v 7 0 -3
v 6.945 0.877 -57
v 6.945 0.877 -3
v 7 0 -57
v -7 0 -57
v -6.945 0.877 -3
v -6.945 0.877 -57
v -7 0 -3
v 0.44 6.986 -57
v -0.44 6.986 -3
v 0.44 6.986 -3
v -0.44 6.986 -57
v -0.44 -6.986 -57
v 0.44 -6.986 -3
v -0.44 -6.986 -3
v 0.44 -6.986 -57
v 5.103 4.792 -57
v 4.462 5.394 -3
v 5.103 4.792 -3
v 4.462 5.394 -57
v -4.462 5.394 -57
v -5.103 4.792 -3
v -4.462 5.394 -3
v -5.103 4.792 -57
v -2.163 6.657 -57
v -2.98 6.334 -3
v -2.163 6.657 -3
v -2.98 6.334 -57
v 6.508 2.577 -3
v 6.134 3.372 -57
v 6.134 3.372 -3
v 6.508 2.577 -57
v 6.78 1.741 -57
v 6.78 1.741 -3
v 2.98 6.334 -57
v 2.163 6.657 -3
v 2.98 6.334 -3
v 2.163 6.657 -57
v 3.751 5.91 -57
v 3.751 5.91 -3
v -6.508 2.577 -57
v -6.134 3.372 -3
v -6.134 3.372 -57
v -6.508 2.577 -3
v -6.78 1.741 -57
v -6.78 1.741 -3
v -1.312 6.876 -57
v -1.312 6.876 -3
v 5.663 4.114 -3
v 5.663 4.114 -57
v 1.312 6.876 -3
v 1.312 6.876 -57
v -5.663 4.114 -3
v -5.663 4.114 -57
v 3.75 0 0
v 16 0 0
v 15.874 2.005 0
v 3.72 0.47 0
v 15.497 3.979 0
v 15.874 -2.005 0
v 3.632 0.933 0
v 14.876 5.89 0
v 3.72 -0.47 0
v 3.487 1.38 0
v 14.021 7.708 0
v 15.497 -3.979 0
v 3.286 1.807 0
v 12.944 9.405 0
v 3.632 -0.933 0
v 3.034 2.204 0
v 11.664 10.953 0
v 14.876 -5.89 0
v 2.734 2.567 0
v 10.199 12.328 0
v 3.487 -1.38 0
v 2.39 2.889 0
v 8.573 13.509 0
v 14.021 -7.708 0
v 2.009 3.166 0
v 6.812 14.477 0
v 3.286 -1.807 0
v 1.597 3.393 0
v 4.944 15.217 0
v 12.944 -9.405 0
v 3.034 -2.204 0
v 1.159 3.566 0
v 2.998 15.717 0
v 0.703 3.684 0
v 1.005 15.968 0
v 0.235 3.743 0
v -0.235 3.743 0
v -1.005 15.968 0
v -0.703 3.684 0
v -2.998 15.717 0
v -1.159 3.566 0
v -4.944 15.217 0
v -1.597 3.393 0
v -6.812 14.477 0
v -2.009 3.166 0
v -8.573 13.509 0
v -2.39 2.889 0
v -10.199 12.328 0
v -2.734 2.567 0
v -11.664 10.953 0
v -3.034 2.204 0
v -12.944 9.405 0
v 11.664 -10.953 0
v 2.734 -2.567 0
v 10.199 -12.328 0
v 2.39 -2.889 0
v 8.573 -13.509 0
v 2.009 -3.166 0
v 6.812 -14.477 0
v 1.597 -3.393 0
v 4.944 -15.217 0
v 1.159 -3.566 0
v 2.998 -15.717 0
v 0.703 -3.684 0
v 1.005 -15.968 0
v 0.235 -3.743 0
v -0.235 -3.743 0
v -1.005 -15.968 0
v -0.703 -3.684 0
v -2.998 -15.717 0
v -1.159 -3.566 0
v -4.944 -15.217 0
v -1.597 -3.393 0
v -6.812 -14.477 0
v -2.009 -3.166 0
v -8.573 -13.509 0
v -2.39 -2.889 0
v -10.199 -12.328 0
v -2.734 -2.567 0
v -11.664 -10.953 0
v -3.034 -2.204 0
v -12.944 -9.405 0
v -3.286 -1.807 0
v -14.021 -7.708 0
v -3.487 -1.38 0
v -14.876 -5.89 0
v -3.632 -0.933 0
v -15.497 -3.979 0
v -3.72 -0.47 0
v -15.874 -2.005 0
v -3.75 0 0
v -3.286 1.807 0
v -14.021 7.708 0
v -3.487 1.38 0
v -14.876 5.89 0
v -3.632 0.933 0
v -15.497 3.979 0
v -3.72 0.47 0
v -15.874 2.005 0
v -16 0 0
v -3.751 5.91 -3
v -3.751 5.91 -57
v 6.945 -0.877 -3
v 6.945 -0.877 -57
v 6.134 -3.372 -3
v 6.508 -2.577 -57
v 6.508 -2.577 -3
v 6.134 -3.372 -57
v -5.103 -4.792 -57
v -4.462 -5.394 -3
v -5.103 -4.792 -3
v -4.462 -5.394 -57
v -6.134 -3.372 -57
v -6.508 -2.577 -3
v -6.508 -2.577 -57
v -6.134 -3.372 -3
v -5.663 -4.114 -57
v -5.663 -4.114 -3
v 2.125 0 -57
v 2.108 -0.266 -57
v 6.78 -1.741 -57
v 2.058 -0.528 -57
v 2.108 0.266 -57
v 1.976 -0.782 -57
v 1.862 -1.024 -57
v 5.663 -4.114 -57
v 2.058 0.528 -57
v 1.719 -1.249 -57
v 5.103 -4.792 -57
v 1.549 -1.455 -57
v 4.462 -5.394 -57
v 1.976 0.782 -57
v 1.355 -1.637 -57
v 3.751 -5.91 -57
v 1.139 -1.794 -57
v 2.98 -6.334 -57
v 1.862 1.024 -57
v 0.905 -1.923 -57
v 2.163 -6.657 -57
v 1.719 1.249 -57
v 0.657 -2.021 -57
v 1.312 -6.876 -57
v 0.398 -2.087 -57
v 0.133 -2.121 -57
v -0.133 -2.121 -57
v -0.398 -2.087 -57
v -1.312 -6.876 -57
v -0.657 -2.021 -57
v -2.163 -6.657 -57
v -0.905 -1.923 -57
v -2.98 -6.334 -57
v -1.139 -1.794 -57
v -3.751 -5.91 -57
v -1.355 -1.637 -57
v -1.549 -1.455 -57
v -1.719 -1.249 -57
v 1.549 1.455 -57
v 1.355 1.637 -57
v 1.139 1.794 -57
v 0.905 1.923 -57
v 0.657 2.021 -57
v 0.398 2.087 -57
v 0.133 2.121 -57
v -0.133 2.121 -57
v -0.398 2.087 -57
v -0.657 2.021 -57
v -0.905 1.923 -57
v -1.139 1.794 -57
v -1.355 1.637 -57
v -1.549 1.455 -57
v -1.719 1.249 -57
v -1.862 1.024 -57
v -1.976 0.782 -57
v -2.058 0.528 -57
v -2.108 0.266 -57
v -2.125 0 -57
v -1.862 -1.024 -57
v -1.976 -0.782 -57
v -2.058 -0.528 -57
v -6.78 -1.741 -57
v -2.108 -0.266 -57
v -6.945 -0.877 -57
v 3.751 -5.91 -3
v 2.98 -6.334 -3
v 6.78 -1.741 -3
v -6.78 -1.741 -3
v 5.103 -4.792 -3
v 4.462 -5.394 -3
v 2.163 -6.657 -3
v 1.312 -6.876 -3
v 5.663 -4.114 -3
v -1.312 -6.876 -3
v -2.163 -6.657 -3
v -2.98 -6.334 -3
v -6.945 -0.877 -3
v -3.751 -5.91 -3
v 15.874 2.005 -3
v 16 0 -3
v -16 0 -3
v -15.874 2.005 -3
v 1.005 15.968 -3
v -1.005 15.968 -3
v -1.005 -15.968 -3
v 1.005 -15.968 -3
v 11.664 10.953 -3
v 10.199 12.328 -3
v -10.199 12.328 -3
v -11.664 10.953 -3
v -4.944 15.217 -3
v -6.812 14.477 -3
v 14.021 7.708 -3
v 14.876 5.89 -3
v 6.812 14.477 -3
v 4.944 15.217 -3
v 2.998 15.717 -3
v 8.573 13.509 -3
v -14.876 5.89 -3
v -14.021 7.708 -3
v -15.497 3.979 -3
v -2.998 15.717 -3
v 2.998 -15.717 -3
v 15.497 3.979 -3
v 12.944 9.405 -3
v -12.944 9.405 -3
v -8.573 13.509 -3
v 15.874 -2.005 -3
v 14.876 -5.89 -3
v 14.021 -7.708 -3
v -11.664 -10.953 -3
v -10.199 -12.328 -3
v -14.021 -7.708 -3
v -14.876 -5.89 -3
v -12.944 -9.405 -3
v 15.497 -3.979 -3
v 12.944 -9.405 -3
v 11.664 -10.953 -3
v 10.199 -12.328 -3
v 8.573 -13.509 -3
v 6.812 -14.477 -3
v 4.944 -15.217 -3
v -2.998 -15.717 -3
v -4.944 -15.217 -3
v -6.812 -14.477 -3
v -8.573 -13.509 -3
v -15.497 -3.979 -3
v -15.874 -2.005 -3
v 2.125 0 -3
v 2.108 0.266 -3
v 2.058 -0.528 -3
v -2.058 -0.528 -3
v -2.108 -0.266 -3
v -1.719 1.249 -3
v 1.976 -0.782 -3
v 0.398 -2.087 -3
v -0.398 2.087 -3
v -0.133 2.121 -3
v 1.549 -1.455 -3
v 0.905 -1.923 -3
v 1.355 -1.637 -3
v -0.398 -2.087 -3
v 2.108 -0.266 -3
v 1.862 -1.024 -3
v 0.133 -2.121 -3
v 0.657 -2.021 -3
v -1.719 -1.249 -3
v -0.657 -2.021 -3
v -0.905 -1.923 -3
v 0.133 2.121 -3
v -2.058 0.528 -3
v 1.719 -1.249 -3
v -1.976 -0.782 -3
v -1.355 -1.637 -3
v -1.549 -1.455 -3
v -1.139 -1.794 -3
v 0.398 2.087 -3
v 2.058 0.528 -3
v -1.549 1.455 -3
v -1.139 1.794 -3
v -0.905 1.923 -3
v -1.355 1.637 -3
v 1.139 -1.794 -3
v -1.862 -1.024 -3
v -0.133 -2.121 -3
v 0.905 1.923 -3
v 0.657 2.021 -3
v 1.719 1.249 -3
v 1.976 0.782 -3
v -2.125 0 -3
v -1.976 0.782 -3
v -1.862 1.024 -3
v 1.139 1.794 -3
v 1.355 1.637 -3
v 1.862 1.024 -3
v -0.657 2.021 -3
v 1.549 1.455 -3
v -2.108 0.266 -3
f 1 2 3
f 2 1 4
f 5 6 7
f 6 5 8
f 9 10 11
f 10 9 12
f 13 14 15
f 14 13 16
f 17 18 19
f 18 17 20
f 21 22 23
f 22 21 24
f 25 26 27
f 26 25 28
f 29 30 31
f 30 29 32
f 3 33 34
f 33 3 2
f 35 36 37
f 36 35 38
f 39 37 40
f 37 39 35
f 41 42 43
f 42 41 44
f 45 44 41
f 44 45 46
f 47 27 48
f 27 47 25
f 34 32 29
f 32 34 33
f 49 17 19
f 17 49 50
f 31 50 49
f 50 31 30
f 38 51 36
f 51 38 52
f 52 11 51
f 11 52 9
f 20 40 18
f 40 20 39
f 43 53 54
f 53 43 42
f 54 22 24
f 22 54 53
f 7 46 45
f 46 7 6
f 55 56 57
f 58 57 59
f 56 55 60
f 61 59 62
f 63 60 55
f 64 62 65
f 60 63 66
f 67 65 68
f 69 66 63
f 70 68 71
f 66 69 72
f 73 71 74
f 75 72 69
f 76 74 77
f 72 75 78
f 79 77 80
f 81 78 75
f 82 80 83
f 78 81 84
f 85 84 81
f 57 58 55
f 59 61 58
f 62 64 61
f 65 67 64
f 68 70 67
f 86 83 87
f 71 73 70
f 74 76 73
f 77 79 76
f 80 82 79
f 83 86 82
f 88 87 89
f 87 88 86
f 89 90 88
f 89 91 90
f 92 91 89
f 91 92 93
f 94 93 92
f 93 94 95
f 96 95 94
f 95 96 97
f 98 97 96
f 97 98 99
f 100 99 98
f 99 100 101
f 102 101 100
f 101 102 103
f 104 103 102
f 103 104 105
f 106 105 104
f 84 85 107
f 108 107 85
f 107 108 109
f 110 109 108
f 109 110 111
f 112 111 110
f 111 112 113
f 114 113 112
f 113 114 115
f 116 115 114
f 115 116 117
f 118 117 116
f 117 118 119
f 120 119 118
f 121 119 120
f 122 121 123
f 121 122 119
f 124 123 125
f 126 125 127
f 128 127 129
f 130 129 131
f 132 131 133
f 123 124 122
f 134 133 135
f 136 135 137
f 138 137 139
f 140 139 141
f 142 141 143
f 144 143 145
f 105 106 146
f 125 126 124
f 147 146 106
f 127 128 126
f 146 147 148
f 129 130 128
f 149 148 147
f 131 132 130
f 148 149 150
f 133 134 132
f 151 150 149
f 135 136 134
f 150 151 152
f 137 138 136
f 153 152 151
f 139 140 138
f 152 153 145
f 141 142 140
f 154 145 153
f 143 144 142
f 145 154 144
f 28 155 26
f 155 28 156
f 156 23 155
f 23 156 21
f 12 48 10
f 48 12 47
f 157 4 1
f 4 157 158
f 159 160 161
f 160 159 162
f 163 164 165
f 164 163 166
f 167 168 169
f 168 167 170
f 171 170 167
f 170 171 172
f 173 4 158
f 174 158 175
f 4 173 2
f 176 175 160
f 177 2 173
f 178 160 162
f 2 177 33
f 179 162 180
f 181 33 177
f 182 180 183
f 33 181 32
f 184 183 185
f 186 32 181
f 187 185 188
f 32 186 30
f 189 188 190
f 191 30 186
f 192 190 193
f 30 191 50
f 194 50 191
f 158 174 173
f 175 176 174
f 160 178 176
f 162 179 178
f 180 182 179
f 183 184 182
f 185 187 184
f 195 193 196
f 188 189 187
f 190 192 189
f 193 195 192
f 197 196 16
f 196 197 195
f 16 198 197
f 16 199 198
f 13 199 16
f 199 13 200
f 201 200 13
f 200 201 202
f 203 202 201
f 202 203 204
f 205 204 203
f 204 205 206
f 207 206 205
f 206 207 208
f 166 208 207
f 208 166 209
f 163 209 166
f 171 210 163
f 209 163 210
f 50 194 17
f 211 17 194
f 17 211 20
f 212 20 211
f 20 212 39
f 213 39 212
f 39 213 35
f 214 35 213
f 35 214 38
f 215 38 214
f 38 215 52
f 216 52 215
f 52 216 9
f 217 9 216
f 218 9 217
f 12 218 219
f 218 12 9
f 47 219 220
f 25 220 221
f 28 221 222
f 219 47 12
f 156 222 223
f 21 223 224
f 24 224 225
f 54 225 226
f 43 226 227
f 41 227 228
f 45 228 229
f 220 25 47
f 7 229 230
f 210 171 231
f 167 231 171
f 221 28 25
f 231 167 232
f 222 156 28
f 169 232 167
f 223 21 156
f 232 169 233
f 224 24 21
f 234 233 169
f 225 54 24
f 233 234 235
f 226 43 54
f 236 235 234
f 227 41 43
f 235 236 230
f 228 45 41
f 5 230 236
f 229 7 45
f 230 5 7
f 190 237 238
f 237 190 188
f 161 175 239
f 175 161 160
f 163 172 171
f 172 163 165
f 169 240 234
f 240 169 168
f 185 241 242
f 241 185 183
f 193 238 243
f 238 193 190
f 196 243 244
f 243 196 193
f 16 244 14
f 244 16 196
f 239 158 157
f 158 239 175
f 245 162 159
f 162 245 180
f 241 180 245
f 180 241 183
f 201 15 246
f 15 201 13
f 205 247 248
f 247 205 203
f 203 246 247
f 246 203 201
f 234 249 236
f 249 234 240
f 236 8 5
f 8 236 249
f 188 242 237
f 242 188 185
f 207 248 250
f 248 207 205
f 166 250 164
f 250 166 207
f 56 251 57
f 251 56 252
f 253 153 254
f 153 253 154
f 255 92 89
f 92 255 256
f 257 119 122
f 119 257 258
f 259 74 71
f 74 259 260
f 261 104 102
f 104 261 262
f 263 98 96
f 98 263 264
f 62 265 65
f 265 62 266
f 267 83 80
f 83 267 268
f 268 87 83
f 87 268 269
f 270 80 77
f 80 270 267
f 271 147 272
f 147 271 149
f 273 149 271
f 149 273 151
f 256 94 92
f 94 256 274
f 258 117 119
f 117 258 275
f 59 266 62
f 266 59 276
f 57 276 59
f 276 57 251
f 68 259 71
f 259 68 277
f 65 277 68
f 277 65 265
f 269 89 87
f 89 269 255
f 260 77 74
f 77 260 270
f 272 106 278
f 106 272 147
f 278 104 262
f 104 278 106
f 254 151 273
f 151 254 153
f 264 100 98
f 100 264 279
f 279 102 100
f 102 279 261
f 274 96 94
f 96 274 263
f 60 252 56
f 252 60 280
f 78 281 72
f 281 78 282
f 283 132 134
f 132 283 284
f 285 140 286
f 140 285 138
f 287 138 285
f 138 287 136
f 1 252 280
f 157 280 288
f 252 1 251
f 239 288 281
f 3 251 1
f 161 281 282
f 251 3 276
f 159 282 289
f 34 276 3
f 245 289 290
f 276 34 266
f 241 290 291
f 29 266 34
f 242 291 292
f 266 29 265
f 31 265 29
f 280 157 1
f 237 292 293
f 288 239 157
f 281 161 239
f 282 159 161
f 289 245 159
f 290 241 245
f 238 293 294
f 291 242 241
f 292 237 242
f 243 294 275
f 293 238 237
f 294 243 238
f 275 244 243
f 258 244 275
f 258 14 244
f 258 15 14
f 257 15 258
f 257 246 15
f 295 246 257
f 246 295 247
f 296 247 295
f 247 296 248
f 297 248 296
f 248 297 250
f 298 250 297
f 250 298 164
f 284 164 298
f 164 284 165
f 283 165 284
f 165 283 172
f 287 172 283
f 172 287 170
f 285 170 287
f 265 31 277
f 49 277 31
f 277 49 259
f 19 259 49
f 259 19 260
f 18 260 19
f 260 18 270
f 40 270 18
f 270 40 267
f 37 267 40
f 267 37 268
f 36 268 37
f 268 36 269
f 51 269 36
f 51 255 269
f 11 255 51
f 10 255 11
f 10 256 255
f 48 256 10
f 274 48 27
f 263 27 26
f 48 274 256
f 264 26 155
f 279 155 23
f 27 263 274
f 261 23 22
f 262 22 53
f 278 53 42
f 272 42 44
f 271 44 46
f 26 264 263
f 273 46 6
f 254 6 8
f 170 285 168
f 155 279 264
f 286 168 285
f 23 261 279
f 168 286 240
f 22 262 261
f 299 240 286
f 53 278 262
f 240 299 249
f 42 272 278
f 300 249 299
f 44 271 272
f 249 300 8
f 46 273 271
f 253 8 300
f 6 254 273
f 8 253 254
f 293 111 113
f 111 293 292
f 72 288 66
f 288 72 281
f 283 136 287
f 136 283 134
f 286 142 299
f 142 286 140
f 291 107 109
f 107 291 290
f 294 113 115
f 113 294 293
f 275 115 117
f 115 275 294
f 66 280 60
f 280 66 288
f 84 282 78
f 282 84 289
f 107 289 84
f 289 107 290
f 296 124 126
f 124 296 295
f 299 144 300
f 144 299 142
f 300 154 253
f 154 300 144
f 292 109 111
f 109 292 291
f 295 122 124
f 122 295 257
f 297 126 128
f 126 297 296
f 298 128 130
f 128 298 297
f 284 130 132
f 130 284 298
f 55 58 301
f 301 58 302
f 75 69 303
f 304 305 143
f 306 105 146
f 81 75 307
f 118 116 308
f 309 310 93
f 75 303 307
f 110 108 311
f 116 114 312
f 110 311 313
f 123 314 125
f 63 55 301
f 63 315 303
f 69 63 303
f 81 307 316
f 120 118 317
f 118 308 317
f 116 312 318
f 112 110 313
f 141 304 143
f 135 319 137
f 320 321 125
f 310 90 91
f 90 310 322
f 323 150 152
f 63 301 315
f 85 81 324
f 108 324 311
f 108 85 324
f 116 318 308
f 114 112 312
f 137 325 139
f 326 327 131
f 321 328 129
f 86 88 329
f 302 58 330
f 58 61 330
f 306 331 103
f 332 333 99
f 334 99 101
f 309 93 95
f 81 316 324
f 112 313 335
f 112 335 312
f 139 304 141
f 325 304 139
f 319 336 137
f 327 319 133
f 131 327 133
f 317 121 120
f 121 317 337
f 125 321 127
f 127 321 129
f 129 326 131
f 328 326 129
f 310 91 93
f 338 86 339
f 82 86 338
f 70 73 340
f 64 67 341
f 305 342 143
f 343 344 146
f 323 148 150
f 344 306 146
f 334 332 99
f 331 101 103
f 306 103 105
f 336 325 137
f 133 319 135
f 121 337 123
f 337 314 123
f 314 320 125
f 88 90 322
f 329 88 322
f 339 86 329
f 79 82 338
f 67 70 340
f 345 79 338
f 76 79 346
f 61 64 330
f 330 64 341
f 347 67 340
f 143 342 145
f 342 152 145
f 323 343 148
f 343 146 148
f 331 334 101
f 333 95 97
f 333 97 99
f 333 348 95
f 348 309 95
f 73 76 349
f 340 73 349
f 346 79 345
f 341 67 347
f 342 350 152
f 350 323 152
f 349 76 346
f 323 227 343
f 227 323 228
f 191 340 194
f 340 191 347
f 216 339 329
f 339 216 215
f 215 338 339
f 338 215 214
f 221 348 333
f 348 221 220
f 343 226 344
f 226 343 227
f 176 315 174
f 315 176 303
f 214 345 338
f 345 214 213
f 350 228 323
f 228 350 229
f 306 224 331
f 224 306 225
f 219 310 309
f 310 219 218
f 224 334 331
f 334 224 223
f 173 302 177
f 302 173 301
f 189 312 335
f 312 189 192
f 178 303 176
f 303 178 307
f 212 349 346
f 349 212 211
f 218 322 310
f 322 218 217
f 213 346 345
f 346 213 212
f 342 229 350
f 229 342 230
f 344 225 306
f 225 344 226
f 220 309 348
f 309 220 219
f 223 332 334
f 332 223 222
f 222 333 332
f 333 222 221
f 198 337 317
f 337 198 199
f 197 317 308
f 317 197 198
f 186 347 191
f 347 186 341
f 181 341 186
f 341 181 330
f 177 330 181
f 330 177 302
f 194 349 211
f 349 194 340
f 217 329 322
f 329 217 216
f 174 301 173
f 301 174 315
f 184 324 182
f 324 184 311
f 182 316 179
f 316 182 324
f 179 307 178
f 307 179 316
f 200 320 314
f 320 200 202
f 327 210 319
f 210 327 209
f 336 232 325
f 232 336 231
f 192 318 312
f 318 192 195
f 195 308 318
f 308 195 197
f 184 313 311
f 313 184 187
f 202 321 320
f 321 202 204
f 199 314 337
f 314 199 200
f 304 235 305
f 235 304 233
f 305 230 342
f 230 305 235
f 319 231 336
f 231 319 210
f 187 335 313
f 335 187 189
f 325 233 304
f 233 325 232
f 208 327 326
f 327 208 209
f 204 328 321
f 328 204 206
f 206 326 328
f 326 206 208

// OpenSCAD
$fn = 50;


difference() {
	union() {
		translate(v = [0, 0, -57.0000000000]) {
			cylinder(h = 57, r = 7.0000000000);
		}
		translate(v = [0, 0, -3.0000000000]) {
			cylinder(h = 3, r = 16.0000000000);
		}
	}
	union() {
		translate(v = [0, 0, 0]) {
			rotate(a = [0, 0, 0]) {
				difference() {
					union() {
						#translate(v = [0, 0, -57.0000000000]) {
							cylinder(h = 57, r = 2.0000000000);
						}
						#translate(v = [0, 0, -3]) {
							cylinder(h = 3, r1 = 2.1250000000, r2 = 3.7500000000);
						}
						#translate(v = [0, 0, -57.0000000000]) {
							cylinder(h = 57, r = 2.1250000000);
						}
						#translate(v = [0, 0, -57.0000000000]) {
							cylinder(h = 57, r = 2.0000000000);
						}
					}
					union();
				}
			}
		}
	}
}
